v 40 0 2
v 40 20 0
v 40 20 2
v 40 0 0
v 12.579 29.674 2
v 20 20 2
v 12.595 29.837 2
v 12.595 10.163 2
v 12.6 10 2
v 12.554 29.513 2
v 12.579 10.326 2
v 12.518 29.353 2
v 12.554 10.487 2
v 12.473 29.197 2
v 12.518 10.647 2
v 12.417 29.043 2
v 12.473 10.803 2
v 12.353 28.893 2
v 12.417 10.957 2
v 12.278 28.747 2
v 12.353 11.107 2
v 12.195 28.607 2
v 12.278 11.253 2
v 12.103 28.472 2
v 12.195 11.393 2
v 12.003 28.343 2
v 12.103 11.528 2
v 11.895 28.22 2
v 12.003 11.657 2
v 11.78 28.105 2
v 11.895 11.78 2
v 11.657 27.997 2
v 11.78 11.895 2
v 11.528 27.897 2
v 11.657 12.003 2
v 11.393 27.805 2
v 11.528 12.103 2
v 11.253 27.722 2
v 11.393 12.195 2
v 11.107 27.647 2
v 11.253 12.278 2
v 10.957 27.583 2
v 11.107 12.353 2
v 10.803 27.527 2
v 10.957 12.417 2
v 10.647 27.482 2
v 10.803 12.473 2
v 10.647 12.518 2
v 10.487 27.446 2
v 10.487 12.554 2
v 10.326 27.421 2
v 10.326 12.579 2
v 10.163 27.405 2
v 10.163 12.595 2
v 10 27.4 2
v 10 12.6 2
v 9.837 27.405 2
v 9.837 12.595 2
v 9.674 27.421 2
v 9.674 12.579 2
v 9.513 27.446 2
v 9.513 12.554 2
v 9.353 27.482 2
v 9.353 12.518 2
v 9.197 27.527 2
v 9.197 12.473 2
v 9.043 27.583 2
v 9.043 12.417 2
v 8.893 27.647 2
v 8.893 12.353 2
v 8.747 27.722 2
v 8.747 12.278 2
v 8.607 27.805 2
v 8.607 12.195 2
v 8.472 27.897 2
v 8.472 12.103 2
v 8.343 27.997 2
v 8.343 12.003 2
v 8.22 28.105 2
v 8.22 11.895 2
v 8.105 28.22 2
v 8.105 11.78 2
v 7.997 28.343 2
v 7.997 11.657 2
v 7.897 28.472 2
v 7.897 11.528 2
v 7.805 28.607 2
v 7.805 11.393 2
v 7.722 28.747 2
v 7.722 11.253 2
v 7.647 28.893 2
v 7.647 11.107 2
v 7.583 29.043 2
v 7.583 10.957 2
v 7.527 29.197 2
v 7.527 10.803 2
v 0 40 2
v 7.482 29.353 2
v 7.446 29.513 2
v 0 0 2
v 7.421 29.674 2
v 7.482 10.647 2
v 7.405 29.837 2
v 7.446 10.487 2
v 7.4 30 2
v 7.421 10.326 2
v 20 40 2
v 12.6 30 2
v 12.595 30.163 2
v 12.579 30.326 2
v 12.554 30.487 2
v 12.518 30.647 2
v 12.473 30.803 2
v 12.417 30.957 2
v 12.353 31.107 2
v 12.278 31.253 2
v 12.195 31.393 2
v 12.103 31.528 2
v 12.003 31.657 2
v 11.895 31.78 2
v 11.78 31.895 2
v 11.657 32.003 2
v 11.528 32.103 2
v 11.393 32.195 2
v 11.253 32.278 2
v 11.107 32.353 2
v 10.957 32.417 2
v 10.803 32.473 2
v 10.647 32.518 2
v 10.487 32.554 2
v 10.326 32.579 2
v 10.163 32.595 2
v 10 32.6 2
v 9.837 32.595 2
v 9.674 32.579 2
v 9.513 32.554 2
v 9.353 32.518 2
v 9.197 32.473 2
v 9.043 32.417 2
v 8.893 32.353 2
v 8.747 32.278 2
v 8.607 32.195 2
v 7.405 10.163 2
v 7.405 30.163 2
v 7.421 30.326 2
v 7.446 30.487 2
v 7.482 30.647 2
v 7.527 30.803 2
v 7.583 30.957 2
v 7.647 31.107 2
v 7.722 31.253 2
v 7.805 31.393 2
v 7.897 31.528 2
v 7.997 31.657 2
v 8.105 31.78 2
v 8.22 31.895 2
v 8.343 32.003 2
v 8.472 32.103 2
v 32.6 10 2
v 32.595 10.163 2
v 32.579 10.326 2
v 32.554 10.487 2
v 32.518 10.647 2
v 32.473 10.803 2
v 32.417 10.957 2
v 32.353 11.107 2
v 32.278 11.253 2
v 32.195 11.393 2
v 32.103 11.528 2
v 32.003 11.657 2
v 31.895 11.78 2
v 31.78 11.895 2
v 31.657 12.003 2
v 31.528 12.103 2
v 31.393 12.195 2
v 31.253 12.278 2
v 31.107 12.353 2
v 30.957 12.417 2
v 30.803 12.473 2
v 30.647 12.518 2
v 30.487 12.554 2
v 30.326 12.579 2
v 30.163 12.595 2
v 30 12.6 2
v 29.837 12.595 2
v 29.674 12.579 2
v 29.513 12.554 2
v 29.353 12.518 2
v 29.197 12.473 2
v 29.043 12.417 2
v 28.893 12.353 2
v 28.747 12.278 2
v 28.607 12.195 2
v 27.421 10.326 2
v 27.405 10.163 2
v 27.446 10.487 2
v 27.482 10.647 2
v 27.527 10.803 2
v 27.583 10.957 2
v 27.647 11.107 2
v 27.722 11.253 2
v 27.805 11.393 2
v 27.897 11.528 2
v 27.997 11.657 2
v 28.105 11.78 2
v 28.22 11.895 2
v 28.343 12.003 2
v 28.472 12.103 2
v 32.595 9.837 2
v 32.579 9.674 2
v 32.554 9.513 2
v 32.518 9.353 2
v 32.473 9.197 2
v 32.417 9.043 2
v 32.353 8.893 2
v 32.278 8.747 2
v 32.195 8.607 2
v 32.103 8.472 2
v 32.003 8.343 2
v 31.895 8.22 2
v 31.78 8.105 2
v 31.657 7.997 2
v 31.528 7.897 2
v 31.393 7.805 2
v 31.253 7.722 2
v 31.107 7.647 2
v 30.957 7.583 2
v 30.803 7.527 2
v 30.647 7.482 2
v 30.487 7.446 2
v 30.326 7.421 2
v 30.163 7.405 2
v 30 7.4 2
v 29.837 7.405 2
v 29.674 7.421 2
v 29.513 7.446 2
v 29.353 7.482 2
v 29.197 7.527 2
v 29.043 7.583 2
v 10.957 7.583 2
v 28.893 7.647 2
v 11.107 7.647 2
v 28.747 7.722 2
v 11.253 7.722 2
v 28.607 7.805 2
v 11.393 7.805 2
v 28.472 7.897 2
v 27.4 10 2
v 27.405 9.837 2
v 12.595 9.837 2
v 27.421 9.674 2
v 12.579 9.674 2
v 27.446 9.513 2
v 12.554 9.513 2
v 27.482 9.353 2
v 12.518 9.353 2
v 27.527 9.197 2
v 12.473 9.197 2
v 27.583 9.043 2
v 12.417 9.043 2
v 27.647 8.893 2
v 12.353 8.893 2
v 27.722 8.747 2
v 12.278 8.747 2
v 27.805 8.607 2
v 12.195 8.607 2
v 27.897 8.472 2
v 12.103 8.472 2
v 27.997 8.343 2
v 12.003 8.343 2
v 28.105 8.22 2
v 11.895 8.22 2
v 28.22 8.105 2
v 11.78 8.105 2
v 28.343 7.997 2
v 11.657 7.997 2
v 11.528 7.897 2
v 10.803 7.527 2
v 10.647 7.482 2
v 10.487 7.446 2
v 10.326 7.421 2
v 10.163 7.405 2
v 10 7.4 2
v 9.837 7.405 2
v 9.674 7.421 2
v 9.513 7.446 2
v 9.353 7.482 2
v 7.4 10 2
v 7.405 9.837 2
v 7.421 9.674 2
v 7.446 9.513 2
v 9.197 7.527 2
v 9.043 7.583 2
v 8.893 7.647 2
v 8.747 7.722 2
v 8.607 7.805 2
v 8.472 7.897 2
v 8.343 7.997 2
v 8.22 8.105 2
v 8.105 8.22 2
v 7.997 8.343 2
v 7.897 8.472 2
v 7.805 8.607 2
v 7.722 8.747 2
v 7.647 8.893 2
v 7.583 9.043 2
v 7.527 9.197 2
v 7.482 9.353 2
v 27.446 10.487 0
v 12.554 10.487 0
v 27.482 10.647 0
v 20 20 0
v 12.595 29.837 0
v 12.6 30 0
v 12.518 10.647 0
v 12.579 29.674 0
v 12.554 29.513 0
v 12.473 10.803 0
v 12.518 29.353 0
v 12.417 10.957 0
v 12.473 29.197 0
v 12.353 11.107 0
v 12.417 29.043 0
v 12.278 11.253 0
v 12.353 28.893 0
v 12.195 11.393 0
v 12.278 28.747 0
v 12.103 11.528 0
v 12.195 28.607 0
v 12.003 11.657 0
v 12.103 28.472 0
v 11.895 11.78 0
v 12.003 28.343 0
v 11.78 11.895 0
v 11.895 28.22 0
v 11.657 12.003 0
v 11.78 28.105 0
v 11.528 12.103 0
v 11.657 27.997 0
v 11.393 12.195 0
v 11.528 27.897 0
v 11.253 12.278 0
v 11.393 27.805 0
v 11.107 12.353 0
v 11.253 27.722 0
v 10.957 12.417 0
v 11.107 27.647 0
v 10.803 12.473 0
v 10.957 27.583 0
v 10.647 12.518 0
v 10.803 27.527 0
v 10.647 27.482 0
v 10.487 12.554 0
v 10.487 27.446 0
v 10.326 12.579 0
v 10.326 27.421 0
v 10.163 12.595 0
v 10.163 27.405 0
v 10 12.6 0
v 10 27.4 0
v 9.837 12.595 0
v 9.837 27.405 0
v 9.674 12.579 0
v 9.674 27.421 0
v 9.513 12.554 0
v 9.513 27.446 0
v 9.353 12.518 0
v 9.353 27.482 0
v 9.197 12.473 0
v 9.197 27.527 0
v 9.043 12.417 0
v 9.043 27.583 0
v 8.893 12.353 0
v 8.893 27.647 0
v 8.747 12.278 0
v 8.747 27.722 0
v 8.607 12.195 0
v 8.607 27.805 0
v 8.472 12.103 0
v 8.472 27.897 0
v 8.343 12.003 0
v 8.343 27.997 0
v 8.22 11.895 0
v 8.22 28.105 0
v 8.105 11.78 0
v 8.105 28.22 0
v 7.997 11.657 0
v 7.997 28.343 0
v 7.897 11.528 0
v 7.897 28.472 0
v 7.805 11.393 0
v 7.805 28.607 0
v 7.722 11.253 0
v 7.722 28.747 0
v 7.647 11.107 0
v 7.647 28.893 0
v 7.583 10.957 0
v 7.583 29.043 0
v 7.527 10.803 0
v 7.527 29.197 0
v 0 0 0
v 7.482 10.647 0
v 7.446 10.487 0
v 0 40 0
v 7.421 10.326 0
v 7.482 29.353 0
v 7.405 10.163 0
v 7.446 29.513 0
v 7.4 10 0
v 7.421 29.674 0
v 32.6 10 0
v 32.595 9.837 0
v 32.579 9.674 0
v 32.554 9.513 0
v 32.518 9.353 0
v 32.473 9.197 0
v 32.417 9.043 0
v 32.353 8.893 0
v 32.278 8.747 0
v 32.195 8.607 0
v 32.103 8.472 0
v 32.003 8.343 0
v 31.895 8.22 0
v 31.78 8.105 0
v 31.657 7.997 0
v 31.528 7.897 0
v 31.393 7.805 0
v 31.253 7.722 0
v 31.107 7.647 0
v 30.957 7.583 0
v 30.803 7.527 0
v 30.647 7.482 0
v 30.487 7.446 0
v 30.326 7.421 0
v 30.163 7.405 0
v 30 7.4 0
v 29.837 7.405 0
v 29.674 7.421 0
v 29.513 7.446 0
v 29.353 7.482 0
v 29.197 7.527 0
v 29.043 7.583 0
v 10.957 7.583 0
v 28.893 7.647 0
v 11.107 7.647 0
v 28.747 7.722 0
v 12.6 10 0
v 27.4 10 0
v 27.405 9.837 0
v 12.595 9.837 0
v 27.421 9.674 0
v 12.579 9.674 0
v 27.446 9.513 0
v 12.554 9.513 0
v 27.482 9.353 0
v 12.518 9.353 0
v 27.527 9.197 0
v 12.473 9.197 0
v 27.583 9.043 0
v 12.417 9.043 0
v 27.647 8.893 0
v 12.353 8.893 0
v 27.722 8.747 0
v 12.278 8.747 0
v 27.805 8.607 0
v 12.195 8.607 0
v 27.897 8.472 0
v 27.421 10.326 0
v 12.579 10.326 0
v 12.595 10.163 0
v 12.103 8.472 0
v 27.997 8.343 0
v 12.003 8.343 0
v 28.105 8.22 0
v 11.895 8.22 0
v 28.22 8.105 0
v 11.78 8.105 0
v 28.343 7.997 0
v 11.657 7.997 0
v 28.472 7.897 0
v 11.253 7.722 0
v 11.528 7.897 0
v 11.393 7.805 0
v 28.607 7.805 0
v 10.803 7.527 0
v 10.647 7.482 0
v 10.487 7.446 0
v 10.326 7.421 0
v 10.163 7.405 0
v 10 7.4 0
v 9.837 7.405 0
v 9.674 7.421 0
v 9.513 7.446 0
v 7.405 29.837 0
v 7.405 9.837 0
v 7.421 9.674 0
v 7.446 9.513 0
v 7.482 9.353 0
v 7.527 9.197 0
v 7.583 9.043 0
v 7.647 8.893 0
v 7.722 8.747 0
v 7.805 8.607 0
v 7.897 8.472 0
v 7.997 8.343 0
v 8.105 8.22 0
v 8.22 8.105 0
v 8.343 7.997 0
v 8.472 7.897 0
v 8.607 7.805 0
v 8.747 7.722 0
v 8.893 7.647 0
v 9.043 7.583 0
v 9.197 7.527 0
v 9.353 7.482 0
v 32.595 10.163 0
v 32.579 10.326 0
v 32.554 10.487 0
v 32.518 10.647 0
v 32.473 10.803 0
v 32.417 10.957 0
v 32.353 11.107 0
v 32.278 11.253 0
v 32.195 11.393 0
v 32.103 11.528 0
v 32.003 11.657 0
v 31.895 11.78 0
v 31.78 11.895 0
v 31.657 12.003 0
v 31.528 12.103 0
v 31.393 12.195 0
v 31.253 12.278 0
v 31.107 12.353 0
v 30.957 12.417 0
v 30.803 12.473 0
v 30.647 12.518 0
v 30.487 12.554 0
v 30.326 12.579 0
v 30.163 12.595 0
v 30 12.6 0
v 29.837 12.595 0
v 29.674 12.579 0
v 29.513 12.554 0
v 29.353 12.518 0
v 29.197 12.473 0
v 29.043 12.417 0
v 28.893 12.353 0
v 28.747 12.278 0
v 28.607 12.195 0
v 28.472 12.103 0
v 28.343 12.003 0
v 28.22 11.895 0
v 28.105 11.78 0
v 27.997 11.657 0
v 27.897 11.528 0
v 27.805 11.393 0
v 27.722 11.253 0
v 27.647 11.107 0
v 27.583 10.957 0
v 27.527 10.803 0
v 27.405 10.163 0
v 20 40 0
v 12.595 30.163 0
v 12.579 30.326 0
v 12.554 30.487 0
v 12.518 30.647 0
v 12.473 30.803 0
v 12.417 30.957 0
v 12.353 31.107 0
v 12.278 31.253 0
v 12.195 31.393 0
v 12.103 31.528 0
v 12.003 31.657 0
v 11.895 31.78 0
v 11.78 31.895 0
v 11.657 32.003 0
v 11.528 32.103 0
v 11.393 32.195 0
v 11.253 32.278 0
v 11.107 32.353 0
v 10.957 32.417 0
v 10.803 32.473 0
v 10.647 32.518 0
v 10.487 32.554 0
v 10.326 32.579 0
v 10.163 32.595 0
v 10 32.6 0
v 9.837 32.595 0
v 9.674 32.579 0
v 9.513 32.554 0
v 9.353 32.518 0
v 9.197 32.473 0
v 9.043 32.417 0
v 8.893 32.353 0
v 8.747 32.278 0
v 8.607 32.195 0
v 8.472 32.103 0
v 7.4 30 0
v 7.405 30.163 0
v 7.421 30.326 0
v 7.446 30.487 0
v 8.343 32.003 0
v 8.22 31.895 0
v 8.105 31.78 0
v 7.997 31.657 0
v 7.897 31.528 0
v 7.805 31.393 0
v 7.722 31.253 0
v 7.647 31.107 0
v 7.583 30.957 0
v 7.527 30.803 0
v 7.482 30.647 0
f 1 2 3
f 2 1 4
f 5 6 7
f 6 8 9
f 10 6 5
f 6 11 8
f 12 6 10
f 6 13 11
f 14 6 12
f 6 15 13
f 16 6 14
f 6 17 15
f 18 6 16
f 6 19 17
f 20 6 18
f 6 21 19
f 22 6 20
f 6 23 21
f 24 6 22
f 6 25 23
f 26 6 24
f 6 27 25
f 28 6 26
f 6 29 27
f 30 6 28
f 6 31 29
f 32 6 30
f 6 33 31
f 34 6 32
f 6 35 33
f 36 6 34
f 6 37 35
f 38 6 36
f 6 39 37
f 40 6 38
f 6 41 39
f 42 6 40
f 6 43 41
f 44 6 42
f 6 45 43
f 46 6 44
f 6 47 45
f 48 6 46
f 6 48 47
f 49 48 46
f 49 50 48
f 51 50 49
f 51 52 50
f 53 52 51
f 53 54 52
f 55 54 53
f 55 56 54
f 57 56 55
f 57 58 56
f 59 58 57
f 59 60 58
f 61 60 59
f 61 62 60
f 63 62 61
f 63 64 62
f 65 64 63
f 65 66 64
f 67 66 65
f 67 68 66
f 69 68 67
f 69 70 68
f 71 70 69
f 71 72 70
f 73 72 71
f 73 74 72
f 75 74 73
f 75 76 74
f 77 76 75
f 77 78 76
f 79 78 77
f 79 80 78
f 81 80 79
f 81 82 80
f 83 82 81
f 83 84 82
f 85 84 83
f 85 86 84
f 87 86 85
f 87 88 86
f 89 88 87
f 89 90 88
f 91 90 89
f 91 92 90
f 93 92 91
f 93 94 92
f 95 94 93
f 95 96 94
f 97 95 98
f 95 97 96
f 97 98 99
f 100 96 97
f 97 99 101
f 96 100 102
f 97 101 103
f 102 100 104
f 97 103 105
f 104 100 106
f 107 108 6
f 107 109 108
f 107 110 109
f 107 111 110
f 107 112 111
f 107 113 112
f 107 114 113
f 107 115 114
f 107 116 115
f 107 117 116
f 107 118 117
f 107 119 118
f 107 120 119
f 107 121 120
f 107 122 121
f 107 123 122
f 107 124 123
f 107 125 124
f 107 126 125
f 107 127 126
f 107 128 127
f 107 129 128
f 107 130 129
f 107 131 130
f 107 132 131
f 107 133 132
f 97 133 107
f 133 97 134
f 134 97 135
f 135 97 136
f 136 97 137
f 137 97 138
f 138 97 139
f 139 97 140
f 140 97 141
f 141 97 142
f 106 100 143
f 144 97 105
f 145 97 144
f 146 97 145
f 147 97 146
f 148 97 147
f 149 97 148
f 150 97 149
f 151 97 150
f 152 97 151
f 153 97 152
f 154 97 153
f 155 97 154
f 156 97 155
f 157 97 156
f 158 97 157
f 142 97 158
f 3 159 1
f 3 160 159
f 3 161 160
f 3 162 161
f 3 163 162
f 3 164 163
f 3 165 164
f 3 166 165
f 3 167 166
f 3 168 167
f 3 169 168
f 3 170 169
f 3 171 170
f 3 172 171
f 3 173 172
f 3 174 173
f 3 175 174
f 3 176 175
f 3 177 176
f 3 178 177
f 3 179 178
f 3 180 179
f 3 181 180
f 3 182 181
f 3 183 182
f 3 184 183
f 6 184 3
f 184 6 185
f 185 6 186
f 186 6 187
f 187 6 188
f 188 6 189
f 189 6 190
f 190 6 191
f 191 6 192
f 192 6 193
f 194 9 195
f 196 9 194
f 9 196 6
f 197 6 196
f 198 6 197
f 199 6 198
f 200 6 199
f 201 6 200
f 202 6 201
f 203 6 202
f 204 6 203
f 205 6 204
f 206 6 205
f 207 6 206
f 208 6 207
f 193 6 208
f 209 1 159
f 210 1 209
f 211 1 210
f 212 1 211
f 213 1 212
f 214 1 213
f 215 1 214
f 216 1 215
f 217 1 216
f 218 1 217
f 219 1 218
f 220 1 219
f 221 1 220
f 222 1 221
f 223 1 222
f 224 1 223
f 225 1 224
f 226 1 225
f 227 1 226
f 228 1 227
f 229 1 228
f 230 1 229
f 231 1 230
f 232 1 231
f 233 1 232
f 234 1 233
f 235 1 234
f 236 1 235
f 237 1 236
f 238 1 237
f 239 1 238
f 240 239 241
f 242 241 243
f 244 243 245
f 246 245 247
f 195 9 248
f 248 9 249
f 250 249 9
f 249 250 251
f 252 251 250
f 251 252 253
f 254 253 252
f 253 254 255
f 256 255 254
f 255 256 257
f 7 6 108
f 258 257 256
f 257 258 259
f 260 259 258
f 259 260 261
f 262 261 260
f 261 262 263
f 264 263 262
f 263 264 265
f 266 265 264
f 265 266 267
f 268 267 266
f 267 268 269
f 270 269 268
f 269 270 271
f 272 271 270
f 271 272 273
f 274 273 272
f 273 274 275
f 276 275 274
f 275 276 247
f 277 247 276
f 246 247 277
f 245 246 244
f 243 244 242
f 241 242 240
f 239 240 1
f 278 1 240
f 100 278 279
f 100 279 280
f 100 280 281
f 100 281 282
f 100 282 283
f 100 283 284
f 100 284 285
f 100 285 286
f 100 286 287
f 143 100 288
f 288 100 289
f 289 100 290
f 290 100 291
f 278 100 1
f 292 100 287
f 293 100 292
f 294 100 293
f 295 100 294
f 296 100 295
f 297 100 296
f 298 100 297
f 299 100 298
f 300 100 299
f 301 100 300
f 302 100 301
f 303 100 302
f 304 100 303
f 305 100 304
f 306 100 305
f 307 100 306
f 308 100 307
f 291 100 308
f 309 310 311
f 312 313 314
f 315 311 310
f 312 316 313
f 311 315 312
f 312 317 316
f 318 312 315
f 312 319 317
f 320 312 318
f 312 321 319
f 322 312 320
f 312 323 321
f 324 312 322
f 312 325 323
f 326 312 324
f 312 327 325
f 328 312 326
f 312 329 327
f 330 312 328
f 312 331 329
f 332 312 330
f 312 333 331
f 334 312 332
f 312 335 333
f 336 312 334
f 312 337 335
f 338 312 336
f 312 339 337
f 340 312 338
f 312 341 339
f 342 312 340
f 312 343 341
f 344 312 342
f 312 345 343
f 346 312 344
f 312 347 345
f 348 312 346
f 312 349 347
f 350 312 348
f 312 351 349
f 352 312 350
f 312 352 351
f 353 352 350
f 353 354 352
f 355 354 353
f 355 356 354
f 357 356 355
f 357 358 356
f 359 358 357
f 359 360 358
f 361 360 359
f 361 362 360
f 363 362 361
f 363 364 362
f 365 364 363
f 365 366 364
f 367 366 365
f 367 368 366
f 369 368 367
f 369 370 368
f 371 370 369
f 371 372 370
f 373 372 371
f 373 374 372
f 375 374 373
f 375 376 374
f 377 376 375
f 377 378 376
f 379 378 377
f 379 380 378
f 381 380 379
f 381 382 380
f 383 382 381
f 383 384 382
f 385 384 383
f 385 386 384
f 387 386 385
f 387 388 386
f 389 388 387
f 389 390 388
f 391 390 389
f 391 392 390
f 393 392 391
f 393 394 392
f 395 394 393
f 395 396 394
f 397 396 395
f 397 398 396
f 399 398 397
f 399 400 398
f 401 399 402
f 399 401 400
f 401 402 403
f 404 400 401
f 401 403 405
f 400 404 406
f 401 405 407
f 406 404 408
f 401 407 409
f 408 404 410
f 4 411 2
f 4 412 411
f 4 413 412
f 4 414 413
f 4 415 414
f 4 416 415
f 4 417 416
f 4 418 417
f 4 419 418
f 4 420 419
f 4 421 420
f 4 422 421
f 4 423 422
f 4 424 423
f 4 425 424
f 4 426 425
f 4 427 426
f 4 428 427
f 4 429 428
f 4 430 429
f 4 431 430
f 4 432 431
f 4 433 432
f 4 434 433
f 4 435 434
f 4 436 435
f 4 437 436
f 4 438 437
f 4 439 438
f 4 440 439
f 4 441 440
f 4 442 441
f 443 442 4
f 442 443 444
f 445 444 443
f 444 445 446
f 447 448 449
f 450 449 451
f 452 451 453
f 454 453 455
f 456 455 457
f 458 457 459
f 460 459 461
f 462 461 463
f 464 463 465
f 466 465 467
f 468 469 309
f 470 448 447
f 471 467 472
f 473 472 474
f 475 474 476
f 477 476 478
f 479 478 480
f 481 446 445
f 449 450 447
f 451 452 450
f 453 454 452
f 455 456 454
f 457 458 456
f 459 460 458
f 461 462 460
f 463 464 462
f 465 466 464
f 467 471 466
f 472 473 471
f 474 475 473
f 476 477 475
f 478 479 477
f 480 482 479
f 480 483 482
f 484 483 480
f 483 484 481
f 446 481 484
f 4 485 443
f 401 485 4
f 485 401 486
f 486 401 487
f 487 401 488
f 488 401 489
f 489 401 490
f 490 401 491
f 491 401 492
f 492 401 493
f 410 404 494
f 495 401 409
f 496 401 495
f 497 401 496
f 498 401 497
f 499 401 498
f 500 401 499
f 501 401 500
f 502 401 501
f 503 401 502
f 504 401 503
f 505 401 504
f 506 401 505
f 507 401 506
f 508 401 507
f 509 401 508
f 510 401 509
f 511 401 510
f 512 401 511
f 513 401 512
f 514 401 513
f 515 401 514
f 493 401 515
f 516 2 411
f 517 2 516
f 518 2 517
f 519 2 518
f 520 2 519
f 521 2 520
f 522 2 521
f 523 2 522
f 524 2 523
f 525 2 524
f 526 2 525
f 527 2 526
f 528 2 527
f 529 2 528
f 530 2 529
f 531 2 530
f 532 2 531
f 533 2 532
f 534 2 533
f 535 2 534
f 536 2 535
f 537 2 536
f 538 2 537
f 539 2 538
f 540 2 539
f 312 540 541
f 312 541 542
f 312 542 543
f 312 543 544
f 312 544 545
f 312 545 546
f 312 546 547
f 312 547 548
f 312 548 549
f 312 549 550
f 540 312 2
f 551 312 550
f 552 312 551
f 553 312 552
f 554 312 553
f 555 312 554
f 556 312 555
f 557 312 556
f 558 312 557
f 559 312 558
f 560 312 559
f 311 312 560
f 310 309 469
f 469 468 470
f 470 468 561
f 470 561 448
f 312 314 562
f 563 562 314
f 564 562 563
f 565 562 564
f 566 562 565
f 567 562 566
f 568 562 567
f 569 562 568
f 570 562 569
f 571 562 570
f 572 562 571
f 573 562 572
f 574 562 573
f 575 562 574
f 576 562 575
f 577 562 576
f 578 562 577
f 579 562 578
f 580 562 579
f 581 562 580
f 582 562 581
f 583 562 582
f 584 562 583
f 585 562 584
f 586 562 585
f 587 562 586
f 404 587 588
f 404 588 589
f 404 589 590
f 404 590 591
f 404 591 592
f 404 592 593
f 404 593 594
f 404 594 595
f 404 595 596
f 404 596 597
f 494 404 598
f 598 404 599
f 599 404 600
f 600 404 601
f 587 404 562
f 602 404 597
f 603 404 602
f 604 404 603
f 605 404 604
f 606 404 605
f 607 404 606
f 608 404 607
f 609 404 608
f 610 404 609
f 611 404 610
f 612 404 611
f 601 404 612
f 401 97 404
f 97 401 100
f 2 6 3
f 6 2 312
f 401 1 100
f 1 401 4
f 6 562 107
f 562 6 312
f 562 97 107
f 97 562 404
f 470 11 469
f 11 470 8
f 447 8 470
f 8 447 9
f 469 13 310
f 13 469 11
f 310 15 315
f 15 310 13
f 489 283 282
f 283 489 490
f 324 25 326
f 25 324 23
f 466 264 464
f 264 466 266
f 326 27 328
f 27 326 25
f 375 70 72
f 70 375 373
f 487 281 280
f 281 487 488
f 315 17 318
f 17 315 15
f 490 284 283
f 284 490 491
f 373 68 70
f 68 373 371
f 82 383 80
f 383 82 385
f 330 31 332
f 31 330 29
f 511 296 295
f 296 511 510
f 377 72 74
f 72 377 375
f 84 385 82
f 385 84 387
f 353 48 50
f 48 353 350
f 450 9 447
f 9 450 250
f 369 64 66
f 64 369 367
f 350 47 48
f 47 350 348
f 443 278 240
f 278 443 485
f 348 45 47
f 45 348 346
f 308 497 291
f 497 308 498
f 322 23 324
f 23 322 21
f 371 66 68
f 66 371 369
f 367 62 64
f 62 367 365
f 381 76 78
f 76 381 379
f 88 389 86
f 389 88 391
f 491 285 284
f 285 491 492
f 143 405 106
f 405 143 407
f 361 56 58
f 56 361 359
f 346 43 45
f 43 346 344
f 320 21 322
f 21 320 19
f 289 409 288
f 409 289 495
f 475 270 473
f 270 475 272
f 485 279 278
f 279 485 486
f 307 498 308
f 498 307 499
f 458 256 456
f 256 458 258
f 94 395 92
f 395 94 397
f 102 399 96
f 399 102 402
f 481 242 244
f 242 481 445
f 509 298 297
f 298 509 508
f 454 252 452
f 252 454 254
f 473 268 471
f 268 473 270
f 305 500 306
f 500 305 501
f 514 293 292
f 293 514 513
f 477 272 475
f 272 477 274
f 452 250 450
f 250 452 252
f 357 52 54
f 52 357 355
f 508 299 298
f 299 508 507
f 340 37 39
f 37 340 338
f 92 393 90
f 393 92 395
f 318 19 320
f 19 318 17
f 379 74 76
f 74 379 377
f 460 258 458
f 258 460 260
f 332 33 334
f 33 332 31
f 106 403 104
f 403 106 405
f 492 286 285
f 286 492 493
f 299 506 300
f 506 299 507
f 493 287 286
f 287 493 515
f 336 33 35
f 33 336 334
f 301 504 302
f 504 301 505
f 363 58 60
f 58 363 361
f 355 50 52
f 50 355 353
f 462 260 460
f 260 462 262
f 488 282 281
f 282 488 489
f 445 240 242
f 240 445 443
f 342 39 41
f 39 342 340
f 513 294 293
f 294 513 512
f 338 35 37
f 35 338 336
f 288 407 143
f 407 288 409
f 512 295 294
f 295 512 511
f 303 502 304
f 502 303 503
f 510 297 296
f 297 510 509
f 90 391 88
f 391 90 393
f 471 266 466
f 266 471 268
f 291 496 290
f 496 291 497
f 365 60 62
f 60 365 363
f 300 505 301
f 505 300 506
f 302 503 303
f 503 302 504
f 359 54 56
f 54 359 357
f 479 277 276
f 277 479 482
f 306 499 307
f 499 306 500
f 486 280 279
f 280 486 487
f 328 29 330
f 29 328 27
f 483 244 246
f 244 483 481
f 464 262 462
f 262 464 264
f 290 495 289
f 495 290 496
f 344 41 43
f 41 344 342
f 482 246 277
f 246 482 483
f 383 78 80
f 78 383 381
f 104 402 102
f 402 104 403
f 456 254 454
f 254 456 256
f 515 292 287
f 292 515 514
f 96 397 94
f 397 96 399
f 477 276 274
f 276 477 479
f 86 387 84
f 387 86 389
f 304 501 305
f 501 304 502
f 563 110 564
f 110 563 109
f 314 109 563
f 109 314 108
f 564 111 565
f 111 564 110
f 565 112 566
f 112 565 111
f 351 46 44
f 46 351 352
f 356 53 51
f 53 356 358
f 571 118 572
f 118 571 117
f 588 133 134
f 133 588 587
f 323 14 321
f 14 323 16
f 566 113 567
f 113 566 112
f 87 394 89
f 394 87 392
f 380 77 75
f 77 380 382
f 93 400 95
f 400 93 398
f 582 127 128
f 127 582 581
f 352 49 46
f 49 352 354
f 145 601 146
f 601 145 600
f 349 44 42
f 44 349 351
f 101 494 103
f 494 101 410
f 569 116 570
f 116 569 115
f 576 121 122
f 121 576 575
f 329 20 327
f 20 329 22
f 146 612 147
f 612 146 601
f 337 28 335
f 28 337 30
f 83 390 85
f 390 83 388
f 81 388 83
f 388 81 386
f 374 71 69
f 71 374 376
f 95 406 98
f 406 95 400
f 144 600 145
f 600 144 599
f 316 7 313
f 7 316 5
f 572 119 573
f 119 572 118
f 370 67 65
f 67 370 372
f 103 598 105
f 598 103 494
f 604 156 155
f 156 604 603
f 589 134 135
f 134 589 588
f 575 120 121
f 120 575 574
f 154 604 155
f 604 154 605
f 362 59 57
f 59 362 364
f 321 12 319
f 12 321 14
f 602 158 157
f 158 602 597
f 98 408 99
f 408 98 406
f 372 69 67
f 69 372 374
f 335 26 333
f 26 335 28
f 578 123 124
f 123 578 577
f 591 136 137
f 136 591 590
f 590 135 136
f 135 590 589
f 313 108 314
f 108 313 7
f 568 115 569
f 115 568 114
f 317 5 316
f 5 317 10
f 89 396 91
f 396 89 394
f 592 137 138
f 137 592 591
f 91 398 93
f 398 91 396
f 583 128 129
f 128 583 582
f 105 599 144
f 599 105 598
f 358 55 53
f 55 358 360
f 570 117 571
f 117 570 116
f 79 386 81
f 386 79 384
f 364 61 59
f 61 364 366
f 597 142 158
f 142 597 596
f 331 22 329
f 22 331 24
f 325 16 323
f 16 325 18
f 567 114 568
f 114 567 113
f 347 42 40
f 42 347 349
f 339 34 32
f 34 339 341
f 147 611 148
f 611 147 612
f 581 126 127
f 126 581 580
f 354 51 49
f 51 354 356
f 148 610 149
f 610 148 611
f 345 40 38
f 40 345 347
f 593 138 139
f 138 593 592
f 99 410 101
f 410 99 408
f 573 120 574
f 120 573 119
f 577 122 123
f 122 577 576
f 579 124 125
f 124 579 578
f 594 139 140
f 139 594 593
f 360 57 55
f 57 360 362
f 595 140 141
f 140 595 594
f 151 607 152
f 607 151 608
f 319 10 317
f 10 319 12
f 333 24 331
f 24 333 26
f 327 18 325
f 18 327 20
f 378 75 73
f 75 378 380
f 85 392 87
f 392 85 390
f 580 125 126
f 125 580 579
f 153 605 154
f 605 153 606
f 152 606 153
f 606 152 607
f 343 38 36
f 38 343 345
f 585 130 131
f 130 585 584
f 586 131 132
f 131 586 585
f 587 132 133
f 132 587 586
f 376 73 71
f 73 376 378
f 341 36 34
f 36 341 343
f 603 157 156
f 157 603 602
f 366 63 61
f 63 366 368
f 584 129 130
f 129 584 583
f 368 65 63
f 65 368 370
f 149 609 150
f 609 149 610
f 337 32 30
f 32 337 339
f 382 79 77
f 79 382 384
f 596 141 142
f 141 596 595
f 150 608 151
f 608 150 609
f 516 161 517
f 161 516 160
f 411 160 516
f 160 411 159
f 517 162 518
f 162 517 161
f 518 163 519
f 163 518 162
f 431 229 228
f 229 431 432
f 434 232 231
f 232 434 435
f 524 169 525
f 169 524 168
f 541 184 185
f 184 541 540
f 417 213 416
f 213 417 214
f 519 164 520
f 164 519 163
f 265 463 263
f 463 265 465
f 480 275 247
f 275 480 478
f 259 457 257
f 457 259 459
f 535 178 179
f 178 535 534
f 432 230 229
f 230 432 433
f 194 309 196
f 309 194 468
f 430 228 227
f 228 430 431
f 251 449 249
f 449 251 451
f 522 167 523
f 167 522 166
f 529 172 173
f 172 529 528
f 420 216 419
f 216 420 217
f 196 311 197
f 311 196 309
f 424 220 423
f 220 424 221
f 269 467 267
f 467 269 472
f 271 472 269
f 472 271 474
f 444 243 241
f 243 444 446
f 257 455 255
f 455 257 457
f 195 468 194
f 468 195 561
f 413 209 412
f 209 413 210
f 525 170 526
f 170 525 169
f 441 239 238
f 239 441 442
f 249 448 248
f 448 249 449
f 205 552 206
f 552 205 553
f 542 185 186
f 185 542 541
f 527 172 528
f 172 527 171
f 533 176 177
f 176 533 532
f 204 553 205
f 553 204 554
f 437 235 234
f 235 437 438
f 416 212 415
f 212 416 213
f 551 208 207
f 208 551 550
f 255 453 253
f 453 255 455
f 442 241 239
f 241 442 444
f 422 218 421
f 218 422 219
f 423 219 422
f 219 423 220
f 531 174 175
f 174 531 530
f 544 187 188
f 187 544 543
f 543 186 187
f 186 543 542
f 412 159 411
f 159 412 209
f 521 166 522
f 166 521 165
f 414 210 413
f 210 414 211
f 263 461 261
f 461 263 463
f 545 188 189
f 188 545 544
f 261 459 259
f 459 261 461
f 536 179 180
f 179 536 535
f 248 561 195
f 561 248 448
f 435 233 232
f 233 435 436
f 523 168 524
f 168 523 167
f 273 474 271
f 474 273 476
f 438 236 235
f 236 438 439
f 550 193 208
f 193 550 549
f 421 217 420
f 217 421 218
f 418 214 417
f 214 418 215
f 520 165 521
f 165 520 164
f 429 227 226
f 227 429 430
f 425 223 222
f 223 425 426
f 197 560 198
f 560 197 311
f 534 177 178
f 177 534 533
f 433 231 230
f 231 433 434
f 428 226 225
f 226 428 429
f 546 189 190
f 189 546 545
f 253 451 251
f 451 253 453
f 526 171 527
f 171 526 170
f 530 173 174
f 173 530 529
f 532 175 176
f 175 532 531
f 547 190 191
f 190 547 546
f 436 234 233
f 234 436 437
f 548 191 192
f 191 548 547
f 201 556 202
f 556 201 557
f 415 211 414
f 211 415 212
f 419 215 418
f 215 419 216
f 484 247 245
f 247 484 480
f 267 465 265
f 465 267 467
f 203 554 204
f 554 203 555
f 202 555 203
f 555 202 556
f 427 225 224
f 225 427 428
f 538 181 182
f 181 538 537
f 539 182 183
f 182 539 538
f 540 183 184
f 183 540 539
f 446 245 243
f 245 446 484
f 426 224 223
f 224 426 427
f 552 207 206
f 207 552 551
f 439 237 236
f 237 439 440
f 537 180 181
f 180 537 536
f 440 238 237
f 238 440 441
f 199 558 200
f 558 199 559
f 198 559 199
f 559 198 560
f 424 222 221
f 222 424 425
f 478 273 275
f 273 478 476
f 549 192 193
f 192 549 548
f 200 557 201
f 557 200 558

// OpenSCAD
$fn=100;

height=2;
height_diff=16;



difference(){
    union(){
        cube(size=[40,20,height]);
        cube(size=[20,40,height]);
    }
    
    translate([10,10,0]){
     cylinder(h=height_diff, r=2.6, center=true);
    }
    
    translate([10,30,0]){
     cylinder(h=height_diff, r=2.6, center=true);
    }
    
    translate([30,10,0]){
     cylinder(h=height_diff, r=2.6, center=true);
    }
}
    
